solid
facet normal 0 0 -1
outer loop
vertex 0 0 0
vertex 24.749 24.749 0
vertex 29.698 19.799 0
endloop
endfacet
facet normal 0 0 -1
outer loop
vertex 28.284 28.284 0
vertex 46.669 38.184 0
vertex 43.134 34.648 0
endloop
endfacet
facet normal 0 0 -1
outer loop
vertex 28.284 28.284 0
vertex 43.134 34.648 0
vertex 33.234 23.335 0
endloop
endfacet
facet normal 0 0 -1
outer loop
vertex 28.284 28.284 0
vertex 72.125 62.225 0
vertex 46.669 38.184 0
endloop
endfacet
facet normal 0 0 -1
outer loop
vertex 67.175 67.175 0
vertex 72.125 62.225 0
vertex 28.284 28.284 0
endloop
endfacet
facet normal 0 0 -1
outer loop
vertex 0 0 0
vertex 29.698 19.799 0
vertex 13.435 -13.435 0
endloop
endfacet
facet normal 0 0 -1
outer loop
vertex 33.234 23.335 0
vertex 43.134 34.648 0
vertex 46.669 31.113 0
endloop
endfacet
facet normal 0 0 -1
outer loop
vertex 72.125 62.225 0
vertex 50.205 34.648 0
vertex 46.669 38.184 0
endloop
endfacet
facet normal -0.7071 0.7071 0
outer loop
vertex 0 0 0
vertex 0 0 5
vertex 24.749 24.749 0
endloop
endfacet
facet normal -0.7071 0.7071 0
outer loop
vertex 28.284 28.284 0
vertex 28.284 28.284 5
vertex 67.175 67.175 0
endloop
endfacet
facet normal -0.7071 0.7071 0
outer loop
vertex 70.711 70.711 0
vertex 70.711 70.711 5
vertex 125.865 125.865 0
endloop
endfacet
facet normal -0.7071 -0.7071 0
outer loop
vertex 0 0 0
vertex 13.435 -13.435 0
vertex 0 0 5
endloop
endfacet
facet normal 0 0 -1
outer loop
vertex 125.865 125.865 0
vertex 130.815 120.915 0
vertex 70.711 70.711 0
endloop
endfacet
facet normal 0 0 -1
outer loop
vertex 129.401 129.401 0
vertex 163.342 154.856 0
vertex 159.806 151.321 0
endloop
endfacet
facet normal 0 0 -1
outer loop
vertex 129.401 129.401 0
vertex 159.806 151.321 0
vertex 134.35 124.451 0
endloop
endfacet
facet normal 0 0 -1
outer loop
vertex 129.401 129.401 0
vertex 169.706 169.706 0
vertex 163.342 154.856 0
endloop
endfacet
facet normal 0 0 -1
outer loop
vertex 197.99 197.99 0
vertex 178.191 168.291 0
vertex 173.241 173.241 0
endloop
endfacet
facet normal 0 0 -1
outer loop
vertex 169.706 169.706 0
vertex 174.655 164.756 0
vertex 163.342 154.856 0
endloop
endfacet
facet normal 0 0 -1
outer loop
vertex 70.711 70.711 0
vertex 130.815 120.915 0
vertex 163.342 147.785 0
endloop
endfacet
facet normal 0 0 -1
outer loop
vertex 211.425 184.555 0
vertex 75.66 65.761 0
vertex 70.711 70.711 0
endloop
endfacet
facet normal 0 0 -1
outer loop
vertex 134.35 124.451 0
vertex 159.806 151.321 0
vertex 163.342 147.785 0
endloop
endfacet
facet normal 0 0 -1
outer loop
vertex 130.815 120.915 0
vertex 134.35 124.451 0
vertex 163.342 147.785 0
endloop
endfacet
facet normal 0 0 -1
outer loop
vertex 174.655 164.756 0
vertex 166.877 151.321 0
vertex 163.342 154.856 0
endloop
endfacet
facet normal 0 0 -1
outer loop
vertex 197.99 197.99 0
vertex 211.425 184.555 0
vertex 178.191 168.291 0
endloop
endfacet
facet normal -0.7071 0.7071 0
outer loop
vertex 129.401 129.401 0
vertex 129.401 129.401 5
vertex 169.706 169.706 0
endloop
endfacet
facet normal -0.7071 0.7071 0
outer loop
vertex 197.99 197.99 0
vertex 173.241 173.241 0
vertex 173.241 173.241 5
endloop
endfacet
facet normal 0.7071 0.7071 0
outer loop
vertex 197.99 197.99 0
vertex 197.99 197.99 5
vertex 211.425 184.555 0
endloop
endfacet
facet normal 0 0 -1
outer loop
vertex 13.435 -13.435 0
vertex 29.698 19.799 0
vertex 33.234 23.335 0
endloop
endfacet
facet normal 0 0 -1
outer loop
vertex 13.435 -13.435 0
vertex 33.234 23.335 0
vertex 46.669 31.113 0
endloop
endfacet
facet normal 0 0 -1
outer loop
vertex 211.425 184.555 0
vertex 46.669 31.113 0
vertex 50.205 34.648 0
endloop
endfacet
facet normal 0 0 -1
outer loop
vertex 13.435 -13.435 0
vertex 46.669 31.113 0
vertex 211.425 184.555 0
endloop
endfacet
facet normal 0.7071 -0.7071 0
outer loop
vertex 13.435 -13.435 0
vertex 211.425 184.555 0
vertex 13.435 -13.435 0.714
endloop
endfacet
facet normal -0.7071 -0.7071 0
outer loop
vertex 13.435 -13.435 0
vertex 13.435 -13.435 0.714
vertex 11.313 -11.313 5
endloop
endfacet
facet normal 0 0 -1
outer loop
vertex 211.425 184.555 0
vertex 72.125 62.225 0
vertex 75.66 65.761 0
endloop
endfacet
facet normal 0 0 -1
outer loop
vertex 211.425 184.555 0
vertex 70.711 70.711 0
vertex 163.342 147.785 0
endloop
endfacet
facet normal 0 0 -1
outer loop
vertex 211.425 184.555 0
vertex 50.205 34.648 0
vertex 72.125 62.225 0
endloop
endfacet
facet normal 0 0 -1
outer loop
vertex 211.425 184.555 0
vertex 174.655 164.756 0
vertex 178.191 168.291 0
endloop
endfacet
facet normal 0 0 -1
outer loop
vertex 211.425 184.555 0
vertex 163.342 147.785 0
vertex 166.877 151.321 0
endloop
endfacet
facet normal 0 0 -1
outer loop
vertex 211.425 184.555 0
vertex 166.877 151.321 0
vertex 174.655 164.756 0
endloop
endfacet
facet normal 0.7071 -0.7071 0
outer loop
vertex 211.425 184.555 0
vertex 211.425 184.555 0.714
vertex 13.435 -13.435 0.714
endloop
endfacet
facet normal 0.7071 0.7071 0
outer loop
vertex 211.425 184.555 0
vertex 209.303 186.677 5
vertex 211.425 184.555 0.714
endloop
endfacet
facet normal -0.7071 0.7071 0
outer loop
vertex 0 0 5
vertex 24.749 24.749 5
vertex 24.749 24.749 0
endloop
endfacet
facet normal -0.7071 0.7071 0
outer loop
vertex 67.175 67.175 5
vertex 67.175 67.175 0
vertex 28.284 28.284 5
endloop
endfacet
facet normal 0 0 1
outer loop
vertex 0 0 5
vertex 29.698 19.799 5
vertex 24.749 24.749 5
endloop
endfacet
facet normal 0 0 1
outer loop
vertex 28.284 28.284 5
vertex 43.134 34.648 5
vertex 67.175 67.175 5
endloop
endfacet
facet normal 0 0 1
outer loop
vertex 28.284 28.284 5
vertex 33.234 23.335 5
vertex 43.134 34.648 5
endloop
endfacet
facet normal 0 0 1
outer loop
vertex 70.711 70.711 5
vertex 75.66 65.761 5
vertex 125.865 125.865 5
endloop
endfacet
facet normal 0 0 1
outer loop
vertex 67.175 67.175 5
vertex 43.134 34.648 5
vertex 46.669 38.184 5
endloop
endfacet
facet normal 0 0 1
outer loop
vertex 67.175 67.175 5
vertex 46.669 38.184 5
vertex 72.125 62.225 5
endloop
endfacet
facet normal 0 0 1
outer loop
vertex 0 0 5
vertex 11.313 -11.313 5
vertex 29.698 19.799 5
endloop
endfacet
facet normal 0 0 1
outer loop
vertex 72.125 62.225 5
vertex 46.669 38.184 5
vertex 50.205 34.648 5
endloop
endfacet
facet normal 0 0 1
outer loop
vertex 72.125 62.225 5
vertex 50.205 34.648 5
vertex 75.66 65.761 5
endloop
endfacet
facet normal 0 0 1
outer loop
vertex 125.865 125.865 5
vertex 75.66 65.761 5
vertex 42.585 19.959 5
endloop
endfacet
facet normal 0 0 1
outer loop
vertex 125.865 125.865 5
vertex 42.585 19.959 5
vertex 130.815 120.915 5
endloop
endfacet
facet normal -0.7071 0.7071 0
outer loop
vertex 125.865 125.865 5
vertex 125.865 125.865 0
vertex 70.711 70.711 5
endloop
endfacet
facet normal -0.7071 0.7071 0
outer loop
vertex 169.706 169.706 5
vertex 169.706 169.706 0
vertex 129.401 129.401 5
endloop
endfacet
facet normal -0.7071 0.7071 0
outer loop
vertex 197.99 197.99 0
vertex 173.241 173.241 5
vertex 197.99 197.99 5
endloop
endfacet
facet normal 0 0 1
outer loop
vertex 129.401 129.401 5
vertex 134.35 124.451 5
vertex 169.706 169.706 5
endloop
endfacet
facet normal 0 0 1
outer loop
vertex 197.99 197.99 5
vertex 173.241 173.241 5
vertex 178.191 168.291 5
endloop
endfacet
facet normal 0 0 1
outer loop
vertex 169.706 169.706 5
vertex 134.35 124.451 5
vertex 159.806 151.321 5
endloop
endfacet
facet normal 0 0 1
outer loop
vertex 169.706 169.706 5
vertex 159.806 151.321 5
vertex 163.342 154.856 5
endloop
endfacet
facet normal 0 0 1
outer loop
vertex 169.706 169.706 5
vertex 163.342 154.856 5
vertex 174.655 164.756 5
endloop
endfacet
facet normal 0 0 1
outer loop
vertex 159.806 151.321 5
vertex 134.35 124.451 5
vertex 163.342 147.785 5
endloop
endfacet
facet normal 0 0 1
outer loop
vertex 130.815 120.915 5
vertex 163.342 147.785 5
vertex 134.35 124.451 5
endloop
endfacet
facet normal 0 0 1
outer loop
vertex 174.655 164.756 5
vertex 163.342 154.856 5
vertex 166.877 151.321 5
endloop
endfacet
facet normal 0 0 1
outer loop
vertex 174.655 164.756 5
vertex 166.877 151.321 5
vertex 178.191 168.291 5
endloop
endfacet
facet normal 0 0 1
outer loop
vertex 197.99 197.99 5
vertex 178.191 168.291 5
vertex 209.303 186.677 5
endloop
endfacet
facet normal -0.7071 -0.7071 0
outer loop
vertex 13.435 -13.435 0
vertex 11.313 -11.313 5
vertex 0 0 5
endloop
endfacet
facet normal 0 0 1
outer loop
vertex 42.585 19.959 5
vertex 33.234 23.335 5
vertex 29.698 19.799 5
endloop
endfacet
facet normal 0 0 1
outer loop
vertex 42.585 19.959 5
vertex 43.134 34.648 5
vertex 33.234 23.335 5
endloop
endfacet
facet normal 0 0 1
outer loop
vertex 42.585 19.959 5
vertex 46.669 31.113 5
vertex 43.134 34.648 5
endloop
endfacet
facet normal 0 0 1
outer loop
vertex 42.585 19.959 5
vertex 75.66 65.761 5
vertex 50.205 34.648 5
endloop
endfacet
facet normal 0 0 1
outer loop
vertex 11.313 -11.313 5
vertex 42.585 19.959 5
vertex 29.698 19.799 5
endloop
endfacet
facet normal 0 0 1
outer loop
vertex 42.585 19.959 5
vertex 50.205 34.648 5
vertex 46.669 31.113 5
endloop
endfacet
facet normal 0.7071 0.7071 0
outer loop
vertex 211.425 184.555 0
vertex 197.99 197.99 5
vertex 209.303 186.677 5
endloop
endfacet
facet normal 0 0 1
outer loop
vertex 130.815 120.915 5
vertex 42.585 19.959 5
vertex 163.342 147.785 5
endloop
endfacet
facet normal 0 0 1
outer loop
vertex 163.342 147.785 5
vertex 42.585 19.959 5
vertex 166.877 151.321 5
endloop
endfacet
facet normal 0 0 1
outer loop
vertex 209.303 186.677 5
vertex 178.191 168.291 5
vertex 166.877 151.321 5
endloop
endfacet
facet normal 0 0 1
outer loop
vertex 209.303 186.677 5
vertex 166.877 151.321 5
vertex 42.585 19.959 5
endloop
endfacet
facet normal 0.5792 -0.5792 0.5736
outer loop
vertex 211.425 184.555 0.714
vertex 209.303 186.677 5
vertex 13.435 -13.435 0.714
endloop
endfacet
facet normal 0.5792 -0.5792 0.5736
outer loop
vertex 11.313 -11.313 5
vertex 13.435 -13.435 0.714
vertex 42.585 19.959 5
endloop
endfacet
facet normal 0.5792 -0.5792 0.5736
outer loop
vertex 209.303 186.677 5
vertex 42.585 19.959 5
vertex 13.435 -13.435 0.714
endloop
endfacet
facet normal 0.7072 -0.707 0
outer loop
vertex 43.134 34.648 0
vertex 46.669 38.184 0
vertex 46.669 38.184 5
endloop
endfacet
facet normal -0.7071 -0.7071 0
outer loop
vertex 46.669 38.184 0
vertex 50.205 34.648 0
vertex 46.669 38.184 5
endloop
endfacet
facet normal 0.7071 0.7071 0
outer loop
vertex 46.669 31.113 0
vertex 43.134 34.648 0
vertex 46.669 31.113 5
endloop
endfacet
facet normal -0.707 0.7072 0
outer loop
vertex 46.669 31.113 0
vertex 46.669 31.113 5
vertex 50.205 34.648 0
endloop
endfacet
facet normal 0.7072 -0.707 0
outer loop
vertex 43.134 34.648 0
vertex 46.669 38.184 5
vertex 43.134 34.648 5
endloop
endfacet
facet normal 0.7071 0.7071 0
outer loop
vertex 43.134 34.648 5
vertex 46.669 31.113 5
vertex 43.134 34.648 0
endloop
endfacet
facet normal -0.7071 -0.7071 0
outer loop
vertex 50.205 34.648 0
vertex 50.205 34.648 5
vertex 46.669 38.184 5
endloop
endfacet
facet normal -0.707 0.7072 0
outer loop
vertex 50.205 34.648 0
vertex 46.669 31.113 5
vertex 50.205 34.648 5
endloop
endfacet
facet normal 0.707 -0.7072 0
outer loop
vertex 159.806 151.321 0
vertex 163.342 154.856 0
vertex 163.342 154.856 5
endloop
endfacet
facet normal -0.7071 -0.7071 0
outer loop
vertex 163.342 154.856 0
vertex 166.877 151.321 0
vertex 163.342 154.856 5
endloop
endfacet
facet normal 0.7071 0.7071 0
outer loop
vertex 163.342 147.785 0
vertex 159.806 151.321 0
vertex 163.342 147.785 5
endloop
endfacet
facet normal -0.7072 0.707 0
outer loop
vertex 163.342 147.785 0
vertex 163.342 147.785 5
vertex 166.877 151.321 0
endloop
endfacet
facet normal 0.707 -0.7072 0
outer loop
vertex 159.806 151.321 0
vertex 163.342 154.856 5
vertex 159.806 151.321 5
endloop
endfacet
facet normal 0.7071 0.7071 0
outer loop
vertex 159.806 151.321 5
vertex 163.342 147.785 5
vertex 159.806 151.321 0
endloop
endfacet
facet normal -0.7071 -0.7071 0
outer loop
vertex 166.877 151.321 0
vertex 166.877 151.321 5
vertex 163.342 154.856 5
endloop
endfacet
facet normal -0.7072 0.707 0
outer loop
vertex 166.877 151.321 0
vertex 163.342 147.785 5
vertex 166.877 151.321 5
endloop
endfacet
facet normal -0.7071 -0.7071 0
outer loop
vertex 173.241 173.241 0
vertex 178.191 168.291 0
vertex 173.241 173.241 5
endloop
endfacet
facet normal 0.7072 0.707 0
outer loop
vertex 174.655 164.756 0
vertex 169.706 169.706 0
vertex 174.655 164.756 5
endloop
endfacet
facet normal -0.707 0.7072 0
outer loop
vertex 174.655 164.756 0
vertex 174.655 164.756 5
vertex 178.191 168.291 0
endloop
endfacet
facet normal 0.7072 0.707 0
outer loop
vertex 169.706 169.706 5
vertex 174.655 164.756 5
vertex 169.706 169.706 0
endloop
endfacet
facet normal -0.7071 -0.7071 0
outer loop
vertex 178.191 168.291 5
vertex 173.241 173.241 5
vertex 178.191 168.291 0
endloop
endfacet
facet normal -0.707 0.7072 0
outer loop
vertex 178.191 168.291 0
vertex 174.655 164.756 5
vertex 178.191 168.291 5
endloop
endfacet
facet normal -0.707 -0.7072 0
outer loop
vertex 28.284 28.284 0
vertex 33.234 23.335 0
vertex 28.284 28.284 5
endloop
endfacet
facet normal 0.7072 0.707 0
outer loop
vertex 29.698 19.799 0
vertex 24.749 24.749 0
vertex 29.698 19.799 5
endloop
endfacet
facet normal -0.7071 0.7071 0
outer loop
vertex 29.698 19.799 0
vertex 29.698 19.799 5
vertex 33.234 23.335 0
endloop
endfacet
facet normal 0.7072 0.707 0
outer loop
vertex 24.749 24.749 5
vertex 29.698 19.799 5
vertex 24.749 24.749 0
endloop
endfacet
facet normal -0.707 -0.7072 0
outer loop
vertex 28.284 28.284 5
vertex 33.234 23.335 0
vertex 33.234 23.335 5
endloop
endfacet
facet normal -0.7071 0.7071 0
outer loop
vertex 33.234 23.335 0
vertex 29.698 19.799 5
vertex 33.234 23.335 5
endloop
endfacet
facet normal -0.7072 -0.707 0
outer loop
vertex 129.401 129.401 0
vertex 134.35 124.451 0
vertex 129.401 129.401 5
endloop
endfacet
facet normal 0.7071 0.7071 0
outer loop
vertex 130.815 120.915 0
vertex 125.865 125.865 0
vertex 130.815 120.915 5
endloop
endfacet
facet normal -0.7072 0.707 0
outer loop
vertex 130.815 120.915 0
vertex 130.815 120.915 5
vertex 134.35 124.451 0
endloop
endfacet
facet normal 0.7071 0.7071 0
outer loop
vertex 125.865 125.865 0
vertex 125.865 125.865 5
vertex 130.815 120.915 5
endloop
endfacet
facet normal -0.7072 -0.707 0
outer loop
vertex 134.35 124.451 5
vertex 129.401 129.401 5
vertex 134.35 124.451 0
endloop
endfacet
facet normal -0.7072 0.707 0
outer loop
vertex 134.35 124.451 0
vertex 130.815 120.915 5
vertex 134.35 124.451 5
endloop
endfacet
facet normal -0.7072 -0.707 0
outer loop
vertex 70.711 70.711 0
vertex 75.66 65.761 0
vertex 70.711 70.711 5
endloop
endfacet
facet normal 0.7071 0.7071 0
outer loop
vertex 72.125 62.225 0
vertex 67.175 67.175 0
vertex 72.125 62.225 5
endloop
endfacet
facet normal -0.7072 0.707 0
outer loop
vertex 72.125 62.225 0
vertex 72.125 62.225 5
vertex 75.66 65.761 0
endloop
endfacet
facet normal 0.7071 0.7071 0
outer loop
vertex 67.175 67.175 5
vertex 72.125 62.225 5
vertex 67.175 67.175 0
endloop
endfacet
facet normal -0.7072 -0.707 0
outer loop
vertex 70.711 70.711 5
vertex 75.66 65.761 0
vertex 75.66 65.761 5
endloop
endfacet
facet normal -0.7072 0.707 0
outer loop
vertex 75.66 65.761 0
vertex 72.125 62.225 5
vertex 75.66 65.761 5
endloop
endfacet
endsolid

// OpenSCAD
//translate([10, 0, 0]) 

//rotate([0, 90, 0]) translate([61.986, 8.574, 0]) import("/Users/iflint/proto/3DPrinting/sprinter/charger-nook-cable-holder-3rd-generation-sprinter/charger-cable-holder-face.stl");
rotate([0, 0, 45])
rotate([180, 0, 0])
rotate([0, 90, 0]) 
difference() {
linear_extrude(height=280) square([5, 19]);
translate([0, 19.5, 0]) rotate([0, 0, -35]) linear_extrude(height=280) square(10);
translate([0, 6, 55]) cube([5, 5, 5]);
translate([0, 6, 220]) cube([5, 5, 5]);
translate([0, 0, 240]) cube([5, 7, 5]);
translate([0, 0, 35]) cube([5, 7, 5]);
translate([0, 0, 178]) cube([5, 7, 5]);
translate([0, 0, 95]) cube([5, 7, 5]);
}

    $fa = 1;
$fs = 0.4;
